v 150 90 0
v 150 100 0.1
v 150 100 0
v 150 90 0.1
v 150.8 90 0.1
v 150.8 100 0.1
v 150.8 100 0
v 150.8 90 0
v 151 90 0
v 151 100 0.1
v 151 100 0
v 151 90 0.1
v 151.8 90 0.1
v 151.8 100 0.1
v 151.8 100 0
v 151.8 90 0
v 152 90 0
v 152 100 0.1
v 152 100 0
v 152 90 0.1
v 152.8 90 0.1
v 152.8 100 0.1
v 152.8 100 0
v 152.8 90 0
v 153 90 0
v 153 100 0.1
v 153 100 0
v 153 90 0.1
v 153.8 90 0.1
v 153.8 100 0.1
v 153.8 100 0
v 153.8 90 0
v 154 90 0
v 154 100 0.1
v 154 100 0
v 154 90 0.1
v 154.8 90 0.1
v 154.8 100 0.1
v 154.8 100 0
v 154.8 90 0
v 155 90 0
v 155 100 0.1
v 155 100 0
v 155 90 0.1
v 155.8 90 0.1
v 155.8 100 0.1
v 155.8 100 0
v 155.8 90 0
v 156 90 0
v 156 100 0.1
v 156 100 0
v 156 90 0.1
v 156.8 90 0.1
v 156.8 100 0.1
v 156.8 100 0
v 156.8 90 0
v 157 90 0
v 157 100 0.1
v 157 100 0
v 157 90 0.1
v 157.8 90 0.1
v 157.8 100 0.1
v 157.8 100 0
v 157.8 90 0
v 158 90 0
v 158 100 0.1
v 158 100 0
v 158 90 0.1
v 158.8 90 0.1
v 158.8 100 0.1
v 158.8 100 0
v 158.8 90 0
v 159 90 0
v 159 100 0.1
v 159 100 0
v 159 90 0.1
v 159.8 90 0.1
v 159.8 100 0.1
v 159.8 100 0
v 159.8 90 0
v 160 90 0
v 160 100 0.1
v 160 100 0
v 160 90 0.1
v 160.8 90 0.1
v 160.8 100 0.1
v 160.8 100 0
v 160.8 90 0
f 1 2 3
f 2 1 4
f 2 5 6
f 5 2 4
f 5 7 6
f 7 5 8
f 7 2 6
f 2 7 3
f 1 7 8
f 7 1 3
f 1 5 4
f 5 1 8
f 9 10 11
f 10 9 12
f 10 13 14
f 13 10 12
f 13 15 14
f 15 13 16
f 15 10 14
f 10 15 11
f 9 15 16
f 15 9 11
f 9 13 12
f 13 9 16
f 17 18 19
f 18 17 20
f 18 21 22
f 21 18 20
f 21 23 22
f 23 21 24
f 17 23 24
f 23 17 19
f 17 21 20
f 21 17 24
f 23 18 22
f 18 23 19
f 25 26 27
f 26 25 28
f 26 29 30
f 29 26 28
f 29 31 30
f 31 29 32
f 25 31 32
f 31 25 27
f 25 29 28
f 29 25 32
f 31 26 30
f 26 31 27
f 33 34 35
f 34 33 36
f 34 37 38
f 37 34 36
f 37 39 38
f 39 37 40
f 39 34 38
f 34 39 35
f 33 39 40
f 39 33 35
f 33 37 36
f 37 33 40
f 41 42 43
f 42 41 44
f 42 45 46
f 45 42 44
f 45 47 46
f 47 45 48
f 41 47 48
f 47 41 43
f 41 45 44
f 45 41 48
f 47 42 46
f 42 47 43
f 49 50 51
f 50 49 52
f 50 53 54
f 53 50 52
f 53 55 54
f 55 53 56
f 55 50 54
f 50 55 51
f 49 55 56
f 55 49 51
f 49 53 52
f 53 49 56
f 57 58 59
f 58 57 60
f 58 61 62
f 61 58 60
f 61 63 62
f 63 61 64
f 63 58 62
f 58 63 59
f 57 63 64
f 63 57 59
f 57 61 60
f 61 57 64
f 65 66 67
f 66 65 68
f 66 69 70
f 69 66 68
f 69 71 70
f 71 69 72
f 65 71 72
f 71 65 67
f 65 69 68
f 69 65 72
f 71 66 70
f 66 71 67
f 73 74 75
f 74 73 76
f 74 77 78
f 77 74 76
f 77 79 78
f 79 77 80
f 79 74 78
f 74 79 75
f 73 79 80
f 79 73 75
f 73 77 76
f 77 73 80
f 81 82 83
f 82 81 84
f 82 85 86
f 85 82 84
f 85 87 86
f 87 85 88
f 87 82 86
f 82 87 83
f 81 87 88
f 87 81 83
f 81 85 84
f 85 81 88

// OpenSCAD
translate([10+140,10+80,0])
        for (i = [0 : 10]){
            translate([i,0,0])
                cube(size = [0.8,10,0.1]);
    }
